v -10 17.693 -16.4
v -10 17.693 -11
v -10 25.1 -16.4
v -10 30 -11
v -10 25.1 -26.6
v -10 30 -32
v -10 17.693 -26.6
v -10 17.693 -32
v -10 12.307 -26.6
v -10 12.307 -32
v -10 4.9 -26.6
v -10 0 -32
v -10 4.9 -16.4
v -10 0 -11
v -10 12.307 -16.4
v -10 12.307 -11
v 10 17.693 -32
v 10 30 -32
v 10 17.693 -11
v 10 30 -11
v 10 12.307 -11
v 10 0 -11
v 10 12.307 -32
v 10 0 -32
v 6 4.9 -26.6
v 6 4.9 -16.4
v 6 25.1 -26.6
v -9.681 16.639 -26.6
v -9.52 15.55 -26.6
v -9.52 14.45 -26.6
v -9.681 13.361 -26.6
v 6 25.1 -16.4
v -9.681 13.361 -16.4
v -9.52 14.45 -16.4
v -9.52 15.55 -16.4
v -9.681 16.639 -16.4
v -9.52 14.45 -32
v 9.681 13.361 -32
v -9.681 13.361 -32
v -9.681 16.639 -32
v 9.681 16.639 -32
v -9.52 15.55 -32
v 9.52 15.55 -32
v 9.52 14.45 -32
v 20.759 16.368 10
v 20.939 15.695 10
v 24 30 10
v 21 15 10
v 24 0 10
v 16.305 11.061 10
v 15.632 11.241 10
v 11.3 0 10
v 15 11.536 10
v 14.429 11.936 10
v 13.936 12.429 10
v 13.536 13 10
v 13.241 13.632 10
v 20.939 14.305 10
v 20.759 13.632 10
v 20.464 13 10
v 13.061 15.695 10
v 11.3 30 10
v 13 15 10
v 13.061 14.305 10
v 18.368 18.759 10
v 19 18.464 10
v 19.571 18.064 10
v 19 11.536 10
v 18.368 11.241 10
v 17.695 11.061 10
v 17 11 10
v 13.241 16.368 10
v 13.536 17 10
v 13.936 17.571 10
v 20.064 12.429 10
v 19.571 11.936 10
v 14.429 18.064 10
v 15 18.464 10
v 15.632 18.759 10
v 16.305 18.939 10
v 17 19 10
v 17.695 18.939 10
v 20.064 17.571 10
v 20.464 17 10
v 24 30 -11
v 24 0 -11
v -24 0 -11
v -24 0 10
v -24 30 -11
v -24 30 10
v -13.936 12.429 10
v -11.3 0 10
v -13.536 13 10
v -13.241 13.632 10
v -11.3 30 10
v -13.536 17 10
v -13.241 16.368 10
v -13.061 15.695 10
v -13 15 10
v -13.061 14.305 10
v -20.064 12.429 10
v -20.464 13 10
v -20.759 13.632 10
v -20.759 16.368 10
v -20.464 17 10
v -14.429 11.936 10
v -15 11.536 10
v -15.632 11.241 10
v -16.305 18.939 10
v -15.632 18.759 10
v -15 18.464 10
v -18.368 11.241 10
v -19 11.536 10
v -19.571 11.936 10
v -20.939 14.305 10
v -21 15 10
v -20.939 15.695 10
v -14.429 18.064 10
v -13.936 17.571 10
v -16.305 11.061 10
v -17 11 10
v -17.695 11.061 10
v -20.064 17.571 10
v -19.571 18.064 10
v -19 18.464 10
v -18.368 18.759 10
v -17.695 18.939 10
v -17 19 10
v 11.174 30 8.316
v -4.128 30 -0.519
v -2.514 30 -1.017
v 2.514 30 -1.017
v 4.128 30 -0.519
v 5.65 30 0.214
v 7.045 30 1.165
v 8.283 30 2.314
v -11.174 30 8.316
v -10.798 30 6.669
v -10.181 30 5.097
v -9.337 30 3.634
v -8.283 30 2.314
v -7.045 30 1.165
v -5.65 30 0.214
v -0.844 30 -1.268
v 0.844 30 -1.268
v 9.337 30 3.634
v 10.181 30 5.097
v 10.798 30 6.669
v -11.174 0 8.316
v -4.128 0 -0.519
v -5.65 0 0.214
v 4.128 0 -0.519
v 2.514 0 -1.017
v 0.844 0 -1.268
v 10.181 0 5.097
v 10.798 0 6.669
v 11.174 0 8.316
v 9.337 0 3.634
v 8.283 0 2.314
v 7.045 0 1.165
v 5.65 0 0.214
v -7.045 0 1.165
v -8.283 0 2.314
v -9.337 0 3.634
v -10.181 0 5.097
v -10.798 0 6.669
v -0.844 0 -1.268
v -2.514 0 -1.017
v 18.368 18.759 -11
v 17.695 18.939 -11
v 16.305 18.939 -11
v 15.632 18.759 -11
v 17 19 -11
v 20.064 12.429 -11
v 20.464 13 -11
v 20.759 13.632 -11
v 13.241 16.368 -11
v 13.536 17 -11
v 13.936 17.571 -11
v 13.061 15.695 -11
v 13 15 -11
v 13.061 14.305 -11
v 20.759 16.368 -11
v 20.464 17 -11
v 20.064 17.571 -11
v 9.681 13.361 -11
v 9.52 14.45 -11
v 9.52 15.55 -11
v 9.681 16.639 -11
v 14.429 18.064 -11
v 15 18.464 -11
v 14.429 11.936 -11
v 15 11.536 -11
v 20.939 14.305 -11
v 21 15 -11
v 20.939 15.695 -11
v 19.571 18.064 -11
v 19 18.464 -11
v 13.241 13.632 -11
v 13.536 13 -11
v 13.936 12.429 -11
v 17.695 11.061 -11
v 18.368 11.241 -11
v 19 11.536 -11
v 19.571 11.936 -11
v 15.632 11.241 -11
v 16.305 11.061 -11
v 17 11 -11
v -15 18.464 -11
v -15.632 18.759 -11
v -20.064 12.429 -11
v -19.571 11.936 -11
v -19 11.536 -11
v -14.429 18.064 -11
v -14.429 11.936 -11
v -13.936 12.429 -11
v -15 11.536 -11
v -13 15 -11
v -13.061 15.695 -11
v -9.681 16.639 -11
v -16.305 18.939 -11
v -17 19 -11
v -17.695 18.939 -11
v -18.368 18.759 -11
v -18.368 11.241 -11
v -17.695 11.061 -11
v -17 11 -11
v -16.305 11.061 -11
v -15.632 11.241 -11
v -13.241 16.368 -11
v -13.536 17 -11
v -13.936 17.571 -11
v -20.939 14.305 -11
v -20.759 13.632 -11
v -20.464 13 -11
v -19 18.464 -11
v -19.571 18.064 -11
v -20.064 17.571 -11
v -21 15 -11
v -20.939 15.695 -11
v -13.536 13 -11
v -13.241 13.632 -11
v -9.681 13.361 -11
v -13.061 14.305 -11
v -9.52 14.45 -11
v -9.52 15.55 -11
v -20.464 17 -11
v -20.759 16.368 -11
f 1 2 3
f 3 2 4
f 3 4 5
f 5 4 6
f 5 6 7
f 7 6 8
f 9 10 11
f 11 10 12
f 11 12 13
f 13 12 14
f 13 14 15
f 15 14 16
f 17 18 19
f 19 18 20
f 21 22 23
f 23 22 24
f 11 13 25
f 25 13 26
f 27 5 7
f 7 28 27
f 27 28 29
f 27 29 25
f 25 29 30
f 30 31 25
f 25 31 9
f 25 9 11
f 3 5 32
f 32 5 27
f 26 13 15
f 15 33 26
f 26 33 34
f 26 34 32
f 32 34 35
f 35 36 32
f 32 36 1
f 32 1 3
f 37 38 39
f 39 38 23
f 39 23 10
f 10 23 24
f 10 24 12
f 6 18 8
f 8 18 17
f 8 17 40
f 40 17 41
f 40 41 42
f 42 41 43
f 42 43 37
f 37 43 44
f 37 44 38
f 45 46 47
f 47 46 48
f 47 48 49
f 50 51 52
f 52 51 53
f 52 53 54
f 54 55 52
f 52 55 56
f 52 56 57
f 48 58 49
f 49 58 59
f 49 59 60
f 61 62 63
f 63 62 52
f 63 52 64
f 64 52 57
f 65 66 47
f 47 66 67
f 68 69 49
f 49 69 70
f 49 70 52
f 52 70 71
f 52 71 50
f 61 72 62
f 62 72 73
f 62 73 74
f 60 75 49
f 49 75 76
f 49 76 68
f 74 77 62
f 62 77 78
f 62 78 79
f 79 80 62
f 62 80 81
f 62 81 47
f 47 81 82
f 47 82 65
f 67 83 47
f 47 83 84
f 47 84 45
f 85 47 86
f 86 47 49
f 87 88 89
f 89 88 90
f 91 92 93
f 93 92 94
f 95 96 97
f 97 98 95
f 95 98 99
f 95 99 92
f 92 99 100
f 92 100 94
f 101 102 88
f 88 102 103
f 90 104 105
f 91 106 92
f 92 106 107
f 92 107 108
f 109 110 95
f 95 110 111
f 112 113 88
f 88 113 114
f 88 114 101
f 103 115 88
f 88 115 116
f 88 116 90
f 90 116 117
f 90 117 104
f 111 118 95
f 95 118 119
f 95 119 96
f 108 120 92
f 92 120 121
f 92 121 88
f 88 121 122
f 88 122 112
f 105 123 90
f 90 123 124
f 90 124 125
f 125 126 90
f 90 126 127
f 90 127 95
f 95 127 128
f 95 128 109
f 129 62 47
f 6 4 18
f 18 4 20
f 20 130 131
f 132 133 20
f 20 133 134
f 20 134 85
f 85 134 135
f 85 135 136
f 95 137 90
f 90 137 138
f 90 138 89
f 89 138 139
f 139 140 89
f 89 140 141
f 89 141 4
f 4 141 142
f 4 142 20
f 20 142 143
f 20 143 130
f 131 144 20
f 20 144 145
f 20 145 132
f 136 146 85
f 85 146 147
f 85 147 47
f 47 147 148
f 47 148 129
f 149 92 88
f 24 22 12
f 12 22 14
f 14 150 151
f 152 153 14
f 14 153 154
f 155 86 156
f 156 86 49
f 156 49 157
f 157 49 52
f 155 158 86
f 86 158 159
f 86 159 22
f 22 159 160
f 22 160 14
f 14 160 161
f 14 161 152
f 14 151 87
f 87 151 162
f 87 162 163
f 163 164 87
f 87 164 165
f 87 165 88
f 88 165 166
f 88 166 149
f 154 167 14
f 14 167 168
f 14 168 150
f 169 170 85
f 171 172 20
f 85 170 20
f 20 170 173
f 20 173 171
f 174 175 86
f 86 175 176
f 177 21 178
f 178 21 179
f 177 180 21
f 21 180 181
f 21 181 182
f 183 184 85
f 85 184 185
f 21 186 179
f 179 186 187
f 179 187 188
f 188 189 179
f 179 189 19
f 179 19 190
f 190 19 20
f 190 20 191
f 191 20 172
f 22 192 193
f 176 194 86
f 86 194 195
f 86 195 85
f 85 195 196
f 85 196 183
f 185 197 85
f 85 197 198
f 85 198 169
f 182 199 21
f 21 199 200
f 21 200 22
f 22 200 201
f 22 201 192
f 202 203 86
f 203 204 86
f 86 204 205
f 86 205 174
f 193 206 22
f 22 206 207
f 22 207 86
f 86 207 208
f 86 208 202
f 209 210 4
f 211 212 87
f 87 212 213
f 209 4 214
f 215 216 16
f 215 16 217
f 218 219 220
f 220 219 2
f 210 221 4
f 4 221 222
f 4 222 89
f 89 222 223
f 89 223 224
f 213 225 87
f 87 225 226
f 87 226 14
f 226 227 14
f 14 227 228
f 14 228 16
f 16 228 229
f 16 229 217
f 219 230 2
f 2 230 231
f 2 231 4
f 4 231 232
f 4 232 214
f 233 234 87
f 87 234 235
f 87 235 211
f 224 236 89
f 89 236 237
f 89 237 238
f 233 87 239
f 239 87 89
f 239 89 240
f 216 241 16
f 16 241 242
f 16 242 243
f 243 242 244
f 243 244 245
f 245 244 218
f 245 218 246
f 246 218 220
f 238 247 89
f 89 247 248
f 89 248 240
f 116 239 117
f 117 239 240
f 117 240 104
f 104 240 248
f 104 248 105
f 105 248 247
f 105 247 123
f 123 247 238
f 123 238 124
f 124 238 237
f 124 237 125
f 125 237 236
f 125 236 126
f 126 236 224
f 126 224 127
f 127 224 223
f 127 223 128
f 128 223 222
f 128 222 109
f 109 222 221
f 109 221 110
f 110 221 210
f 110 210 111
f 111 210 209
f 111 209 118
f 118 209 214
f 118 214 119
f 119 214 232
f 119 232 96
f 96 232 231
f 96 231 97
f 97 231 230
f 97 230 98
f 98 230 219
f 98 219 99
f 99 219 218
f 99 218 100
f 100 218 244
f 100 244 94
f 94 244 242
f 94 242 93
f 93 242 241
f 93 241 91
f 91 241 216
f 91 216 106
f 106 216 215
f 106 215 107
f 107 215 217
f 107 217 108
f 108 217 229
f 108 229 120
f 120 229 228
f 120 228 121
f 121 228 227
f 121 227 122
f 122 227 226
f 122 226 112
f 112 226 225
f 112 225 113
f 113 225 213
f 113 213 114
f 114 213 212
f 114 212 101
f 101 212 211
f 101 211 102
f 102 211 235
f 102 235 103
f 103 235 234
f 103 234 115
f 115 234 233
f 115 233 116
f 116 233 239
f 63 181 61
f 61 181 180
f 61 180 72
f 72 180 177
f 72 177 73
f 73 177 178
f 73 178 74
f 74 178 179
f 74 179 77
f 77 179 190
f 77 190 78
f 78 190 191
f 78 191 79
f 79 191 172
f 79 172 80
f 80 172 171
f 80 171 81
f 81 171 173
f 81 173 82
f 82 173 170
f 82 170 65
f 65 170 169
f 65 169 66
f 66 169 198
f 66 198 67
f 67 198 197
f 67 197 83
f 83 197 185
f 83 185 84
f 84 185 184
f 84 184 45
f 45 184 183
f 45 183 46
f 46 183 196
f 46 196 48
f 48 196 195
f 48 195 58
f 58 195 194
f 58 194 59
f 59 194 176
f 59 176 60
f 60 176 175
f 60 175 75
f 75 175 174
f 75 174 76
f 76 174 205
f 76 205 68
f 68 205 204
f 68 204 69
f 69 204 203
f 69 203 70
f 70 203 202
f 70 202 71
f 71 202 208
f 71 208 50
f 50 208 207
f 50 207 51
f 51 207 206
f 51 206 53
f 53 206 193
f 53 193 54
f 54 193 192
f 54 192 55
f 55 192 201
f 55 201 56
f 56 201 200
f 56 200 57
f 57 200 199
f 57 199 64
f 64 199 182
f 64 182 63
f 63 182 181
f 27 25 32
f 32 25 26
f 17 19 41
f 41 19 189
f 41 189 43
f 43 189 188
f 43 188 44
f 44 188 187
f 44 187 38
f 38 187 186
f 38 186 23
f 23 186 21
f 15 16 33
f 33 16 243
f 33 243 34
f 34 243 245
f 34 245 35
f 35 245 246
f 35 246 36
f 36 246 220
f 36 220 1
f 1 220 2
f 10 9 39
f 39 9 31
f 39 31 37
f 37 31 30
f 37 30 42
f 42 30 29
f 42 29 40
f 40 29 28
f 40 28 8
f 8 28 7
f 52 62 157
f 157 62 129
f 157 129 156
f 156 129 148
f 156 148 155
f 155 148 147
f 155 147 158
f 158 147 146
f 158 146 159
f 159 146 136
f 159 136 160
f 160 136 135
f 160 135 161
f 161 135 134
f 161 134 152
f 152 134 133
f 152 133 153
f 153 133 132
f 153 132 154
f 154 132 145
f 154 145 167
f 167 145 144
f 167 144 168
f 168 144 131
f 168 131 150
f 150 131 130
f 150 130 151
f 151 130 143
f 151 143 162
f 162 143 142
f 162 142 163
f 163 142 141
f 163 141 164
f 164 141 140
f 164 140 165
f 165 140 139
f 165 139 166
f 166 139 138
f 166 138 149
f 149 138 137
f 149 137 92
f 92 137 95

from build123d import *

# Parameters (mm, degrees)
SKETCH_1_W          = 48
SKETCH_1_H          = 20
EXTRUDE_1_DEPTH     = 30
SKETCH_2_W          = 14
SKETCH_2_H          = 30
CUT_EXTRUDE_1_DEPTH = 7
SKETCH_7_W          = 22
SKETCH_7_H          = 30
EXTRUDE_2_DEPTH     = 48
SKETCH_8_W          = 21
SKETCH_8_H          = 30
CUT_EXTRUDE_2_DEPTH = 14
SKETCH_9_W          = 21
SKETCH_9_H          = 30
CUT_EXTRUDE_3_DEPTH = 14
SKETCH_11_W         = 10.2
SKETCH_11_H         = 20.2
CUT_EXTRUDE_4_DEPTH = 56.497747702
SKETCH_13_R         = 4
CUT_EXTRUDE_5_DEPTH = 44.783558558
SKETCH_14_R         = 4
CUT_EXTRUDE_6_DEPTH = 44.783558558
FILLET_1_R          = 7
SKETCH1_W           = 10.2
SKETCH1_H           = 20.2
BOSS_EXTRUDE1_DEPTH = 4
SKETCH_20_R         = 7.5
CUT_EXTRUDE_8_DEPTH = 44.783558558
SKETCH2_R           = 11.3
CUT_EXTRUDE1_DEPTH  = 51


with BuildPart() as part:
    # Эскиз1 → Бобышка-Вытянуть1 (new body)
    with BuildSketch(Plane(origin=(0, 0, 0), x_dir=(1, 0, 0), z_dir=(0, 1, 0))):
        Rectangle(SKETCH_1_W, SKETCH_1_H)
    extrude(amount=EXTRUDE_1_DEPTH)

    # Эскиз2 → Вырез-Вытянуть1 (cut)
    with BuildSketch(Plane.XY.offset(10)):
        with Locations((0, 15)):
            Rectangle(SKETCH_2_W, SKETCH_2_H)
    extrude(amount=-CUT_EXTRUDE_1_DEPTH, mode=Mode.SUBTRACT)

    # Эскиз7 → Бобышка-Вытянуть2 (add)
    with BuildSketch(Plane(origin=(24, 0, 0), x_dir=(0, 0, -1), z_dir=(1, 0, 0))):
        with Locations((21, 15)):
            Rectangle(SKETCH_7_W, SKETCH_7_H)
    extrude(amount=-EXTRUDE_2_DEPTH)

    # Эскиз8 → Вырез-Вытянуть2 (cut)
    with BuildSketch(Plane(origin=(24, 0, 0), x_dir=(0, 0, -1), z_dir=(1, 0, 0))):
        with Locations((21.5, 15)):
            Rectangle(SKETCH_8_W, SKETCH_8_H)
    extrude(amount=-CUT_EXTRUDE_2_DEPTH, mode=Mode.SUBTRACT)

    # Эскиз9 → Вырез-Вытянуть3 (cut)
    with BuildSketch(Plane.ZY.offset(24)):
        with Locations((-21.5, 15)):
            Rectangle(SKETCH_9_W, SKETCH_9_H)
    extrude(amount=-CUT_EXTRUDE_3_DEPTH, mode=Mode.SUBTRACT)

    # Эскиз11 → Вырез-Вытянуть4 (cut, through all)
    with BuildSketch(Plane.ZY.offset(10)):
        with Locations((-21.5, 15)):
            Rectangle(SKETCH_11_W, SKETCH_11_H)
    extrude(amount=-CUT_EXTRUDE_4_DEPTH, mode=Mode.SUBTRACT)

    # Эскиз13 → Вырез-Вытянуть5 (cut, through all)
    with BuildSketch(Plane(origin=(0, 0, -11), x_dir=(-1, 0, 0), z_dir=(0, 0, -1))):
        with Locations((17, 15)):
            Circle(SKETCH_13_R)
    extrude(amount=-CUT_EXTRUDE_5_DEPTH, mode=Mode.SUBTRACT)

    # Эскиз14 → Вырез-Вытянуть6 (cut, through all)
    with BuildSketch(Plane(origin=(0, 0, -11), x_dir=(-1, 0, 0), z_dir=(0, 0, -1))):
        with Locations((-17, 15)):
            Circle(SKETCH_14_R)
    extrude(amount=-CUT_EXTRUDE_6_DEPTH, mode=Mode.SUBTRACT)

    # Скругление1
    fillet_1_edges = [part.edges().sort_by_distance(p)[0] for p in [
        (-7, 15, 3),
        (7, 15, 3),
    ]]
    fillet(fillet_1_edges, radius=FILLET_1_R - 0.0001)  # a hair under: the kernel refuses the full size

    # Sketch1 → Boss-Extrude1 (add)
    with BuildSketch(Plane(origin=(10, 0, 0), x_dir=(0, 0, -1), z_dir=(1, 0, 0))):
        with Locations((21.5, 15)):
            Rectangle(SKETCH1_W, SKETCH1_H)
    extrude(amount=-BOSS_EXTRUDE1_DEPTH)

    # Эскиз20 → Вырез-Вытянуть8 (cut, through all)
    with BuildSketch(Plane(origin=(0, 0, -11), x_dir=(-1, 0, 0), z_dir=(0, 0, -1))):
        with Locations((-17, 15)):
            Circle(SKETCH_20_R)
        with Locations((17, 15)):
            Circle(SKETCH_20_R)
    extrude(amount=CUT_EXTRUDE_8_DEPTH, mode=Mode.SUBTRACT)

    # Sketch2 → Cut-Extrude1 (cut, through all)
    with BuildSketch(Plane(origin=(0, 30, 0), x_dir=(1, 0, 0), z_dir=(0, 1, 0))):
        with Locations((0, -10)):
            Circle(SKETCH2_R)
    extrude(amount=-CUT_EXTRUDE1_DEPTH, mode=Mode.SUBTRACT)


solid = part.part
